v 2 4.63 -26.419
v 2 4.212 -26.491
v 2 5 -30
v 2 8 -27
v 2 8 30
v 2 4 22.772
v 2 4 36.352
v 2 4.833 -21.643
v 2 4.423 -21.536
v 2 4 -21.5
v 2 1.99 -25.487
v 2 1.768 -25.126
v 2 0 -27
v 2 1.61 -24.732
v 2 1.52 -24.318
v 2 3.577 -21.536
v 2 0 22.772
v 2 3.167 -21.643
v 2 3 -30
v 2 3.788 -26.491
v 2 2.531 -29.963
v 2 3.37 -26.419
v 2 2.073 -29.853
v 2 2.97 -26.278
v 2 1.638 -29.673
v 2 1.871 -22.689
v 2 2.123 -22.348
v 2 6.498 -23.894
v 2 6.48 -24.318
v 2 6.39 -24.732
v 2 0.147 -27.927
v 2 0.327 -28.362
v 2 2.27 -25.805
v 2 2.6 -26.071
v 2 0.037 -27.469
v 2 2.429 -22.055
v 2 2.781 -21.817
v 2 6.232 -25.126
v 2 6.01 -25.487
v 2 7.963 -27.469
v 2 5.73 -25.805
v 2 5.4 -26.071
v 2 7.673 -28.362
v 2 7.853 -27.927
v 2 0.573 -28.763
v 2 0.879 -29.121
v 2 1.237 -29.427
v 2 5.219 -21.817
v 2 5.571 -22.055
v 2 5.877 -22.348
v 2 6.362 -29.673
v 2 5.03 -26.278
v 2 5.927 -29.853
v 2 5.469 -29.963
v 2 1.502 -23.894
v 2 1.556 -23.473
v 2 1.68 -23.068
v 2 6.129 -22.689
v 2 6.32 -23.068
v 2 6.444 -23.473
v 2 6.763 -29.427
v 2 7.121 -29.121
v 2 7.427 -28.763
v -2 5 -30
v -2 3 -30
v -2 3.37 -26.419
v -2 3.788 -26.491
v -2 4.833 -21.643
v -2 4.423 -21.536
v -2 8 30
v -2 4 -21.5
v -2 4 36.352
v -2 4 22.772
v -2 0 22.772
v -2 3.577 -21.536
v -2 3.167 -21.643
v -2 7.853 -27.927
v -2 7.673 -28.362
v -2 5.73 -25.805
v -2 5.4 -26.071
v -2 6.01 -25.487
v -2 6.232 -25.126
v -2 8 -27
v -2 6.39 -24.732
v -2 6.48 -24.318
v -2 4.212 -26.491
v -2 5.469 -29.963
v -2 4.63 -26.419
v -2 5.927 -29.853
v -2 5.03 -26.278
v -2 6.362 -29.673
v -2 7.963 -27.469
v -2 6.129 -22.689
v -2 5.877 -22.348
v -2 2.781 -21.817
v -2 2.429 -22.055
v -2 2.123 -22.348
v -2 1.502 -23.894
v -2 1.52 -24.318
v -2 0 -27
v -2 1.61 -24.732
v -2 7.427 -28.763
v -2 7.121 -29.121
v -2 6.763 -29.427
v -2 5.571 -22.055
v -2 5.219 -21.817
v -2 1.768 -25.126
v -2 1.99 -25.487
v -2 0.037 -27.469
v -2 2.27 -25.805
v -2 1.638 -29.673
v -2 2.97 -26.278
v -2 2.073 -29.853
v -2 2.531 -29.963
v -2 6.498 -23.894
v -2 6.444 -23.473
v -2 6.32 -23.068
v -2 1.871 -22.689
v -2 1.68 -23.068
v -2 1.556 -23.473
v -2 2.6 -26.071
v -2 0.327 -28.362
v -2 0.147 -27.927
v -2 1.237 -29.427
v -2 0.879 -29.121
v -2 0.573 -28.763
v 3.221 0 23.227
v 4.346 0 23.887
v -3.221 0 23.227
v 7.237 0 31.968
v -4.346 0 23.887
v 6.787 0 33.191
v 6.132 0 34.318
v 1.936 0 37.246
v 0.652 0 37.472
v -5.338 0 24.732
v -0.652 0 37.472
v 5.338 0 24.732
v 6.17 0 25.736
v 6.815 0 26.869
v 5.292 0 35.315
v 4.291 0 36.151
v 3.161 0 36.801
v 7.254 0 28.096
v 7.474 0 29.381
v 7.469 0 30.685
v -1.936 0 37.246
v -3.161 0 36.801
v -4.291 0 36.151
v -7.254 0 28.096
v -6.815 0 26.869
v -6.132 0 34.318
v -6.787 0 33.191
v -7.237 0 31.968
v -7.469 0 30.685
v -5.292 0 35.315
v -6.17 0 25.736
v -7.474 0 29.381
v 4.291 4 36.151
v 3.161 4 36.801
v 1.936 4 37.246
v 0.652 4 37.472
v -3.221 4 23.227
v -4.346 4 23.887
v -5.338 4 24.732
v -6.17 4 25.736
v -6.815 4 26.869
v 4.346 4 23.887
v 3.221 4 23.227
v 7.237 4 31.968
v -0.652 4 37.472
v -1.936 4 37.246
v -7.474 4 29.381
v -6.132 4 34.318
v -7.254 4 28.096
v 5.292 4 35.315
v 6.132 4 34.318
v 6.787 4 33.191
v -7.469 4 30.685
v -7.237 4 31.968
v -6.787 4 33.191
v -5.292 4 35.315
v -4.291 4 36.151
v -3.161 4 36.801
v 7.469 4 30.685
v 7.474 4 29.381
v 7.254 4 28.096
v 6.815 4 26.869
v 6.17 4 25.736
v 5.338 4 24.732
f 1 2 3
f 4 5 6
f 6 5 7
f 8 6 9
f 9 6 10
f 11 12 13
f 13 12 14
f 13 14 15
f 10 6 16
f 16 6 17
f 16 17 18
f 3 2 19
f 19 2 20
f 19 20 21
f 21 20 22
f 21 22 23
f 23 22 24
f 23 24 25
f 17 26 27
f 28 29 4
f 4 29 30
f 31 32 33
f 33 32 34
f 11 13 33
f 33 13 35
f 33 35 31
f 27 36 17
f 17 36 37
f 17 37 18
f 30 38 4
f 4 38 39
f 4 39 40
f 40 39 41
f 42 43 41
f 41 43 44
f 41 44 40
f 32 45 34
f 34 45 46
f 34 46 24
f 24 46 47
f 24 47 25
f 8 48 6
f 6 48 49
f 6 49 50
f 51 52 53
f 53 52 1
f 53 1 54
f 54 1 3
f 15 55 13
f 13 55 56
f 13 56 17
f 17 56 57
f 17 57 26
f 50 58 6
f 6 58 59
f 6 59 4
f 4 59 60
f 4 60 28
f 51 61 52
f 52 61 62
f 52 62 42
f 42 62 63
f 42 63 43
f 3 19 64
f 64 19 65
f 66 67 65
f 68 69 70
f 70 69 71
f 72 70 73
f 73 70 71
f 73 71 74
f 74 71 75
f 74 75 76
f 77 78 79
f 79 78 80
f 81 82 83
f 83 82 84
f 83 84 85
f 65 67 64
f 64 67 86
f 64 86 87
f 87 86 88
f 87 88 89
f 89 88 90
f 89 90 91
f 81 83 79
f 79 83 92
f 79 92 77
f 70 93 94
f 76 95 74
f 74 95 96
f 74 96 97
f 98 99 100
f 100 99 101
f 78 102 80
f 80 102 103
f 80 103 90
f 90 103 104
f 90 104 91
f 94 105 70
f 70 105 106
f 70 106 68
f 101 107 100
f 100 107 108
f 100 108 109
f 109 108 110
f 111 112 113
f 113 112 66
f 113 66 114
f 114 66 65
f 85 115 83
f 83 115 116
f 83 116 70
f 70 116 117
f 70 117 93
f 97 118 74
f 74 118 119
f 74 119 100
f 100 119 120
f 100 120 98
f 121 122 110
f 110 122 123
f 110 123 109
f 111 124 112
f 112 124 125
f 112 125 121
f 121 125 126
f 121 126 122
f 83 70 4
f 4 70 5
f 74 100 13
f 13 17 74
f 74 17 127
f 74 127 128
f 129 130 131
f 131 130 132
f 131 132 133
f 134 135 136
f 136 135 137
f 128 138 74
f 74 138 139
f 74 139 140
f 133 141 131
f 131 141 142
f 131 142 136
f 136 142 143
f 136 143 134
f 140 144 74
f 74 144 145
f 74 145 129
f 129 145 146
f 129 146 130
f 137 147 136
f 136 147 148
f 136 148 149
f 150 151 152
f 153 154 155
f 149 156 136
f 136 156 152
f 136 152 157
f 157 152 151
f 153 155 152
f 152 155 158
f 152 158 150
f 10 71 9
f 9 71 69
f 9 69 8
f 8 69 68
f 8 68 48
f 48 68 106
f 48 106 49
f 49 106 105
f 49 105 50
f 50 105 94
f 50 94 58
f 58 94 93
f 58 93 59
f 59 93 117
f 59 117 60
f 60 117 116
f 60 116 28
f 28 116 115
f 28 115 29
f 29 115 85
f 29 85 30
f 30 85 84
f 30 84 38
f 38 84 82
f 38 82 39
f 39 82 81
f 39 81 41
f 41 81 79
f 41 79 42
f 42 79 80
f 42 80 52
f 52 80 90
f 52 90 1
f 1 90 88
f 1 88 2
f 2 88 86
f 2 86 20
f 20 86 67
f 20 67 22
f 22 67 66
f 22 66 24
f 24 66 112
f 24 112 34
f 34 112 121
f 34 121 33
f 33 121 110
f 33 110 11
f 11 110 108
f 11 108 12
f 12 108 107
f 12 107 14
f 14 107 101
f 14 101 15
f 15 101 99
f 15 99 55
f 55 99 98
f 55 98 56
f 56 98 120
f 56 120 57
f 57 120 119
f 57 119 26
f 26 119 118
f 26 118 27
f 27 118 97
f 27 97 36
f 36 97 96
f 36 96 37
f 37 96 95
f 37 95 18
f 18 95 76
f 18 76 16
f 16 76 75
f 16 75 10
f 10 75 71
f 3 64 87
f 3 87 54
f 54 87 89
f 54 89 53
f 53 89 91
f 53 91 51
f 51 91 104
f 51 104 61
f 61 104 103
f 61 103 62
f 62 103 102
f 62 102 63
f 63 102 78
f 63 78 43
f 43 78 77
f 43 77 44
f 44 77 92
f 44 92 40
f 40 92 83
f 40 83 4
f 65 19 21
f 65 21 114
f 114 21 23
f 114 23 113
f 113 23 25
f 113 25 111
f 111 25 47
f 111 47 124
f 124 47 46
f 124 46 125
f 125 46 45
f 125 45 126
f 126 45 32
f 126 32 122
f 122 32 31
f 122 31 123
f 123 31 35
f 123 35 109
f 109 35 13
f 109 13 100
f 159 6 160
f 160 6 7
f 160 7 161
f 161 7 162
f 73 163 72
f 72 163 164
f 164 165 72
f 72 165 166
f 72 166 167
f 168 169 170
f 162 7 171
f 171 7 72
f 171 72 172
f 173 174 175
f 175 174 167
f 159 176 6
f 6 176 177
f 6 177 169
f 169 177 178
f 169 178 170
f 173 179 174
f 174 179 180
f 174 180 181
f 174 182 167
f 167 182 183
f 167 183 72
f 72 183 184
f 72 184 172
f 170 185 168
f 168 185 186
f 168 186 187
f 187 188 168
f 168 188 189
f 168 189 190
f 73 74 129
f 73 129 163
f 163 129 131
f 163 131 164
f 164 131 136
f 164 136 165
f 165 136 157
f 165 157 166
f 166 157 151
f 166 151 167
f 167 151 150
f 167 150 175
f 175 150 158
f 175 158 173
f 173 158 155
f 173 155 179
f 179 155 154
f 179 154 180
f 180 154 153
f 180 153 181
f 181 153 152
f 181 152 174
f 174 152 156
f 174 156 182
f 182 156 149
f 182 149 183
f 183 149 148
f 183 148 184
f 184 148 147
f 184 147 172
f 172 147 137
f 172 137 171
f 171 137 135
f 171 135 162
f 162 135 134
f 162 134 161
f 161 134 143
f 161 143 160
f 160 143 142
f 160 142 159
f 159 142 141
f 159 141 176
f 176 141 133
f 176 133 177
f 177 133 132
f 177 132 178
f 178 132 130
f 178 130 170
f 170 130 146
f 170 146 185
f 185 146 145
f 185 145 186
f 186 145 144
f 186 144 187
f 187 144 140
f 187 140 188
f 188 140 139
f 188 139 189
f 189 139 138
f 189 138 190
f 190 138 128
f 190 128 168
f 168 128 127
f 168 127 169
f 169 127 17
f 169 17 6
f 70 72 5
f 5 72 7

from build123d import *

# Parameters (mm, degrees)
SKETCH1_W           = 4
SKETCH1_H           = 60
BOSS_EXTRUDE1_DEPTH = 8
SKETCH2_R           = 2.5
CUT_EXTRUDE1_DEPTH  = 8
FILLET1_R           = 3
SKETCH3_R           = 7.5
BOSS_EXTRUDE2_DEPTH = 4
BOSS_EXTRUDE3_DEPTH = 4


with BuildPart() as part:
    # Sketch1 → Boss-Extrude1 (new body)
    with BuildSketch(Plane(origin=(0, 0, 0), x_dir=(1, 0, 0), z_dir=(0, 1, 0))):
        Rectangle(SKETCH1_W, SKETCH1_H)
    extrude(amount=BOSS_EXTRUDE1_DEPTH)

    # Sketch2 → Cut-Extrude1 (cut)
    with BuildSketch(Plane.ZY.offset(2)):
        with Locations((-24, 4)):
            Circle(SKETCH2_R)
    extrude(amount=-CUT_EXTRUDE1_DEPTH, mode=Mode.SUBTRACT)

    # Fillet1
    fillet1_edges = [part.edges().sort_by_distance(p)[0] for p in [
        (0, 0, -30),
        (0, 8, -30),
    ]]
    fillet(fillet1_edges, radius=FILLET1_R)

    # Sketch3 → Boss-Extrude2 (add)
    with BuildSketch(Plane.XZ):
        with Locations((0, 30)):
            Circle(SKETCH3_R)
    extrude(amount=-BOSS_EXTRUDE2_DEPTH)

    # Sketch4 → Boss-Extrude3 (add)
    with BuildSketch(Plane(origin=(2, 0, 0), x_dir=(0, 0, -1), z_dir=(1, 0, 0))):
        Polygon((-30, 4), (-36.351721889, 4), (-30, 8), align=None)
    extrude(amount=-BOSS_EXTRUDE3_DEPTH)


solid = part.part
